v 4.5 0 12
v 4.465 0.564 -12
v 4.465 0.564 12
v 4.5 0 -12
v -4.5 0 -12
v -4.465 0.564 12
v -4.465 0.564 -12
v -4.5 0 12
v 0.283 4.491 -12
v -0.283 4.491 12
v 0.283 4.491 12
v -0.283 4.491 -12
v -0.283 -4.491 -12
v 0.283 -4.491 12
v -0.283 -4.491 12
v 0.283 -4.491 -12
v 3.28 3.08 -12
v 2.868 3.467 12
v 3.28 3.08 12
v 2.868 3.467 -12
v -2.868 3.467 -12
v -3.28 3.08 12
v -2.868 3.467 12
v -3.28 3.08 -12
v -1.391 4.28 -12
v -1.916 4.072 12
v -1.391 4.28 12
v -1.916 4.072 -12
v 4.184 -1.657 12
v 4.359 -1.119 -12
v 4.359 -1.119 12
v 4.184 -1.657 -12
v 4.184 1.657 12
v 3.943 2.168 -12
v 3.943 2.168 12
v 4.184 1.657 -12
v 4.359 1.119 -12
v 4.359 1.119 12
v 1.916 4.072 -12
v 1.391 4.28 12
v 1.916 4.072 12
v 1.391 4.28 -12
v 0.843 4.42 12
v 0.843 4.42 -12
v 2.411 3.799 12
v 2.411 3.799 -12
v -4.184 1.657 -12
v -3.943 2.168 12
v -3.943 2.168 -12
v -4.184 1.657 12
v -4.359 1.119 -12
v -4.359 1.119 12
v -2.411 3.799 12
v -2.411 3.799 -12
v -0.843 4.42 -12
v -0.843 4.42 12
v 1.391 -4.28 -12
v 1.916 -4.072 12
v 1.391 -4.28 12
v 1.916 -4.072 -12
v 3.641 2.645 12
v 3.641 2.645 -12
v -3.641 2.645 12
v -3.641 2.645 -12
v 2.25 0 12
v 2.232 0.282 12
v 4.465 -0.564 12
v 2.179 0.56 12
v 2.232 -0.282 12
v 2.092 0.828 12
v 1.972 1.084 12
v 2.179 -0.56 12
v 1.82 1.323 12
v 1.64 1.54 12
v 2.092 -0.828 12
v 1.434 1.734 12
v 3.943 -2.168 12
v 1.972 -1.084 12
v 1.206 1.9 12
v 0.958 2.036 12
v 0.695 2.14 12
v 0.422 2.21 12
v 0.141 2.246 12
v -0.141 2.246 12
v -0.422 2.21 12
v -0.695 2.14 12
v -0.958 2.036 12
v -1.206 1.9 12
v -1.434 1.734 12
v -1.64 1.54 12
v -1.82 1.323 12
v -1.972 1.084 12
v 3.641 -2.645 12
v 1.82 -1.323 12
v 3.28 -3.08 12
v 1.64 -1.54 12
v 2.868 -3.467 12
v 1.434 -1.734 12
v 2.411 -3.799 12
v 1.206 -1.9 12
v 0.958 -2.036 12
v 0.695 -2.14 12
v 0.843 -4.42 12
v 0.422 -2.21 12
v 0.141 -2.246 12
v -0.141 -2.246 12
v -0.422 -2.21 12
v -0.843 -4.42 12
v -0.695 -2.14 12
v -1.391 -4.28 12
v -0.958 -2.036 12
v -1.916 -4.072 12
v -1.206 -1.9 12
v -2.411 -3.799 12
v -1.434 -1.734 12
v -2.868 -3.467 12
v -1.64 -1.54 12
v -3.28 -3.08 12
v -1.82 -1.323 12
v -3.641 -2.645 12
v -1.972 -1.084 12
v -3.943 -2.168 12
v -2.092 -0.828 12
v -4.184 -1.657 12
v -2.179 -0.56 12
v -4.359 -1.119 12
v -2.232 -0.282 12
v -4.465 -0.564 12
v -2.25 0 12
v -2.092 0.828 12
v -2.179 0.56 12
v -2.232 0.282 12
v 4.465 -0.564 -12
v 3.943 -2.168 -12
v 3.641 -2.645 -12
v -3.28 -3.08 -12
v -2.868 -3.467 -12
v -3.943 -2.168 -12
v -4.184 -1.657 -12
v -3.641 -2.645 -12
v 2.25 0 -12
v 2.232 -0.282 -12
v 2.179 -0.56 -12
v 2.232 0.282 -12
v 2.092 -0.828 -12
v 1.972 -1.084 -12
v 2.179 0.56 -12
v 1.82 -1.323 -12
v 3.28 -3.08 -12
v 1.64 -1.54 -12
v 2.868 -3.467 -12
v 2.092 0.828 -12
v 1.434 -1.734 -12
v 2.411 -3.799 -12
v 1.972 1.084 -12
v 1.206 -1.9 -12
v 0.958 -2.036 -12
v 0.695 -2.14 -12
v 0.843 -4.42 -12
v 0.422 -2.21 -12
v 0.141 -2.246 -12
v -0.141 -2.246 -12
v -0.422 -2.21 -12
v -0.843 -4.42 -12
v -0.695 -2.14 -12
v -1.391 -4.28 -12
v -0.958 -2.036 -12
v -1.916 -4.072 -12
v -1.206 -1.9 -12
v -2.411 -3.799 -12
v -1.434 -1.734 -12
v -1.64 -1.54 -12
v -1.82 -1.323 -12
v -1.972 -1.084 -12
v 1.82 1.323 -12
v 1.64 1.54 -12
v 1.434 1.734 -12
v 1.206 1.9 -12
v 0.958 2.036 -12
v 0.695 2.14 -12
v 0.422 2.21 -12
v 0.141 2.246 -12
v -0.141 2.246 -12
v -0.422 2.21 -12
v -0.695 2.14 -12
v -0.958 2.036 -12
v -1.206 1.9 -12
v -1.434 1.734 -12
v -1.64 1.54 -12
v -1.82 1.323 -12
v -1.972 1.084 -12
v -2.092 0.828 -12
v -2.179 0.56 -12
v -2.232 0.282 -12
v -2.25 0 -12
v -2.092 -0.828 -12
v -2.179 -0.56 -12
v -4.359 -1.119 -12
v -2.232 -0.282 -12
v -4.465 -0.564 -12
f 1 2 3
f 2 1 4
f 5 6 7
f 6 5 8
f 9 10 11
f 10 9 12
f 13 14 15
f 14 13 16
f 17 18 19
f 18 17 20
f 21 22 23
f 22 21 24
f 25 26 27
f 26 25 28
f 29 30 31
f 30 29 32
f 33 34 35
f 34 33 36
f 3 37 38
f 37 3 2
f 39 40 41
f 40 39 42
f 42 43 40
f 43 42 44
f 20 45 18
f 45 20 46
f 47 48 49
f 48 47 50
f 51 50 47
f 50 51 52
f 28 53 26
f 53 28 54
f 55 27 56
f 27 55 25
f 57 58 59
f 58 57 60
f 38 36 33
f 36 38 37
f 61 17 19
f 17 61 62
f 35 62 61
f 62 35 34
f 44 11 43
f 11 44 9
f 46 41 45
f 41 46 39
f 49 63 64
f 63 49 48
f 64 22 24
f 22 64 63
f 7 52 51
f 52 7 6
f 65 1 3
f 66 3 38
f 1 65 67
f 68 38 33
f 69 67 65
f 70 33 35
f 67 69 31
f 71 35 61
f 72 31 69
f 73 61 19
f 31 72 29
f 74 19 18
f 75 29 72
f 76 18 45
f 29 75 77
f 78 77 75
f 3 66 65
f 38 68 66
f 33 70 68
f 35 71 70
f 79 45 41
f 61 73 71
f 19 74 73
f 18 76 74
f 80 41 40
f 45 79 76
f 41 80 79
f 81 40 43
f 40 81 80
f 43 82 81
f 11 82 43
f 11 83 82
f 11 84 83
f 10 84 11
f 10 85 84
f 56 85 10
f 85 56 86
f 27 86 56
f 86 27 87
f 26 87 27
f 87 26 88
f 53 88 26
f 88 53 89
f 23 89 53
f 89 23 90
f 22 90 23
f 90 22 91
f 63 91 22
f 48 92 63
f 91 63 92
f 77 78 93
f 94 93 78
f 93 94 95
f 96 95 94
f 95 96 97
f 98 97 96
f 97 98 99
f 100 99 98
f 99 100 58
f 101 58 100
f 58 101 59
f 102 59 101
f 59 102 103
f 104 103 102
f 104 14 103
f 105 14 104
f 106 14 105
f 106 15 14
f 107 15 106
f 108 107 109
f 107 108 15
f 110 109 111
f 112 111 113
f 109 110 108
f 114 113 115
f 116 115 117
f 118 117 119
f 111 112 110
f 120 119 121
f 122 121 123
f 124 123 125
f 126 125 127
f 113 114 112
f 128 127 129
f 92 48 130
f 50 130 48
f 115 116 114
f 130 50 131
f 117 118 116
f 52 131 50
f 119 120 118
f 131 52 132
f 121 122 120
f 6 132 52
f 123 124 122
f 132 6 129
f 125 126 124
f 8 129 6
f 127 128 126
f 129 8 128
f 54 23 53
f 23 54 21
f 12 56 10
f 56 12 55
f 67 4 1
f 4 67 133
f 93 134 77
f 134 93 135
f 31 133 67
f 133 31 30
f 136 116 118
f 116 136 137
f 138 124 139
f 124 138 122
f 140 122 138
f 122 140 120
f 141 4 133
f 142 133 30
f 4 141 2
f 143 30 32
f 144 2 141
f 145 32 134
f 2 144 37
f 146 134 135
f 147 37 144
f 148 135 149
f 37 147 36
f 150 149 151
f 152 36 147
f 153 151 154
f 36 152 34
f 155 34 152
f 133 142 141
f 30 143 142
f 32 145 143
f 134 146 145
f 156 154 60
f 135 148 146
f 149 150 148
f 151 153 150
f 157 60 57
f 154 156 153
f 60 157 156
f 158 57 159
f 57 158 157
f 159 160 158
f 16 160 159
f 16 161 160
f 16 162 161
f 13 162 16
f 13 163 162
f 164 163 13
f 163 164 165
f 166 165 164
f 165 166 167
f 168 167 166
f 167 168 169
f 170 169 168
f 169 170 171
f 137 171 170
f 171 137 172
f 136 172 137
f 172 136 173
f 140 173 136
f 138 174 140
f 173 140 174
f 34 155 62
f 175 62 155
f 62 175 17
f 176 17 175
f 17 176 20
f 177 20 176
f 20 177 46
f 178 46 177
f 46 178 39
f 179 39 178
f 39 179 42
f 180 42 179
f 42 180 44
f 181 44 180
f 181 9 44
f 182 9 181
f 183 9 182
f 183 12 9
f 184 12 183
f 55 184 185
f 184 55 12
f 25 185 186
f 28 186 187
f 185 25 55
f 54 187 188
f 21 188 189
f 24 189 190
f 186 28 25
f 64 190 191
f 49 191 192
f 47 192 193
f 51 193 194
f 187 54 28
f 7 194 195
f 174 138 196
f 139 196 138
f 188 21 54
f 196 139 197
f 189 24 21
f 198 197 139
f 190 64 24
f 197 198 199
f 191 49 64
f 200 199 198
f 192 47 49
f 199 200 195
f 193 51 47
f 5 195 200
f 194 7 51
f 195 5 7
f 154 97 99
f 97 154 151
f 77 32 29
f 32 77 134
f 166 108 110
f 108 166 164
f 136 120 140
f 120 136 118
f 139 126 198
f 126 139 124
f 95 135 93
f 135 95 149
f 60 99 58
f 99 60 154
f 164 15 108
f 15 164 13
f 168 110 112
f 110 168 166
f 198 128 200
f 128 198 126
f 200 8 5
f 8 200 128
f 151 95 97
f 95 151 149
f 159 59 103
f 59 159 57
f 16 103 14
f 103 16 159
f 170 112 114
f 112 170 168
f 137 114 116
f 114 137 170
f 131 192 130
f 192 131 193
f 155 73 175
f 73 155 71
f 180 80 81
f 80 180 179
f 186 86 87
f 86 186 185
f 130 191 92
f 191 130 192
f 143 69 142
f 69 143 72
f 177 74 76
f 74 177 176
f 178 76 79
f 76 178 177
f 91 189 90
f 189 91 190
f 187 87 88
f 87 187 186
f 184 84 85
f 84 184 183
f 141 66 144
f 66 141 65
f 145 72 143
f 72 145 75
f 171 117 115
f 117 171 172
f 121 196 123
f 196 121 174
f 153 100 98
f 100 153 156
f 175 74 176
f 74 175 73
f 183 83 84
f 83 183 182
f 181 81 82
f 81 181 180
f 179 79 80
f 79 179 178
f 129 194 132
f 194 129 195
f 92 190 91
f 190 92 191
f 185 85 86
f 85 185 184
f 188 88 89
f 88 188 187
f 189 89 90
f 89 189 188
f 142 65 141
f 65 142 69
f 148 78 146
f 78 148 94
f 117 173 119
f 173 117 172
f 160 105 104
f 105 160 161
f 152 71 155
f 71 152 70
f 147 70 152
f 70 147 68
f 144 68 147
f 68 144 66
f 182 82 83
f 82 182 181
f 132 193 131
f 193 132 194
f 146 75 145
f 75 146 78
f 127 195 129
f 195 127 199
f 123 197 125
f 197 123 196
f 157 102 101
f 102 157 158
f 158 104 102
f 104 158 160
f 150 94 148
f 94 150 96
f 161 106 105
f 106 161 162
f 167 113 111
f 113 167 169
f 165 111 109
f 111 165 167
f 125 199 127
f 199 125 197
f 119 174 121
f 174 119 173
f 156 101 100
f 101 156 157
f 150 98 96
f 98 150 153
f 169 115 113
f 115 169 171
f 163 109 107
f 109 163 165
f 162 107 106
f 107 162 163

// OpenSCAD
$fn = 50;


difference() {
	union() {
		translate(v = [0, 0, -12.0000000000]) {
			cylinder(h = 24, r = 4.5000000000);
		}
	}
	union() {
		translate(v = [0, 0, -100.0000000000]) {
			cylinder(h = 200, r = 2.2500000000);
		}
	}
}
